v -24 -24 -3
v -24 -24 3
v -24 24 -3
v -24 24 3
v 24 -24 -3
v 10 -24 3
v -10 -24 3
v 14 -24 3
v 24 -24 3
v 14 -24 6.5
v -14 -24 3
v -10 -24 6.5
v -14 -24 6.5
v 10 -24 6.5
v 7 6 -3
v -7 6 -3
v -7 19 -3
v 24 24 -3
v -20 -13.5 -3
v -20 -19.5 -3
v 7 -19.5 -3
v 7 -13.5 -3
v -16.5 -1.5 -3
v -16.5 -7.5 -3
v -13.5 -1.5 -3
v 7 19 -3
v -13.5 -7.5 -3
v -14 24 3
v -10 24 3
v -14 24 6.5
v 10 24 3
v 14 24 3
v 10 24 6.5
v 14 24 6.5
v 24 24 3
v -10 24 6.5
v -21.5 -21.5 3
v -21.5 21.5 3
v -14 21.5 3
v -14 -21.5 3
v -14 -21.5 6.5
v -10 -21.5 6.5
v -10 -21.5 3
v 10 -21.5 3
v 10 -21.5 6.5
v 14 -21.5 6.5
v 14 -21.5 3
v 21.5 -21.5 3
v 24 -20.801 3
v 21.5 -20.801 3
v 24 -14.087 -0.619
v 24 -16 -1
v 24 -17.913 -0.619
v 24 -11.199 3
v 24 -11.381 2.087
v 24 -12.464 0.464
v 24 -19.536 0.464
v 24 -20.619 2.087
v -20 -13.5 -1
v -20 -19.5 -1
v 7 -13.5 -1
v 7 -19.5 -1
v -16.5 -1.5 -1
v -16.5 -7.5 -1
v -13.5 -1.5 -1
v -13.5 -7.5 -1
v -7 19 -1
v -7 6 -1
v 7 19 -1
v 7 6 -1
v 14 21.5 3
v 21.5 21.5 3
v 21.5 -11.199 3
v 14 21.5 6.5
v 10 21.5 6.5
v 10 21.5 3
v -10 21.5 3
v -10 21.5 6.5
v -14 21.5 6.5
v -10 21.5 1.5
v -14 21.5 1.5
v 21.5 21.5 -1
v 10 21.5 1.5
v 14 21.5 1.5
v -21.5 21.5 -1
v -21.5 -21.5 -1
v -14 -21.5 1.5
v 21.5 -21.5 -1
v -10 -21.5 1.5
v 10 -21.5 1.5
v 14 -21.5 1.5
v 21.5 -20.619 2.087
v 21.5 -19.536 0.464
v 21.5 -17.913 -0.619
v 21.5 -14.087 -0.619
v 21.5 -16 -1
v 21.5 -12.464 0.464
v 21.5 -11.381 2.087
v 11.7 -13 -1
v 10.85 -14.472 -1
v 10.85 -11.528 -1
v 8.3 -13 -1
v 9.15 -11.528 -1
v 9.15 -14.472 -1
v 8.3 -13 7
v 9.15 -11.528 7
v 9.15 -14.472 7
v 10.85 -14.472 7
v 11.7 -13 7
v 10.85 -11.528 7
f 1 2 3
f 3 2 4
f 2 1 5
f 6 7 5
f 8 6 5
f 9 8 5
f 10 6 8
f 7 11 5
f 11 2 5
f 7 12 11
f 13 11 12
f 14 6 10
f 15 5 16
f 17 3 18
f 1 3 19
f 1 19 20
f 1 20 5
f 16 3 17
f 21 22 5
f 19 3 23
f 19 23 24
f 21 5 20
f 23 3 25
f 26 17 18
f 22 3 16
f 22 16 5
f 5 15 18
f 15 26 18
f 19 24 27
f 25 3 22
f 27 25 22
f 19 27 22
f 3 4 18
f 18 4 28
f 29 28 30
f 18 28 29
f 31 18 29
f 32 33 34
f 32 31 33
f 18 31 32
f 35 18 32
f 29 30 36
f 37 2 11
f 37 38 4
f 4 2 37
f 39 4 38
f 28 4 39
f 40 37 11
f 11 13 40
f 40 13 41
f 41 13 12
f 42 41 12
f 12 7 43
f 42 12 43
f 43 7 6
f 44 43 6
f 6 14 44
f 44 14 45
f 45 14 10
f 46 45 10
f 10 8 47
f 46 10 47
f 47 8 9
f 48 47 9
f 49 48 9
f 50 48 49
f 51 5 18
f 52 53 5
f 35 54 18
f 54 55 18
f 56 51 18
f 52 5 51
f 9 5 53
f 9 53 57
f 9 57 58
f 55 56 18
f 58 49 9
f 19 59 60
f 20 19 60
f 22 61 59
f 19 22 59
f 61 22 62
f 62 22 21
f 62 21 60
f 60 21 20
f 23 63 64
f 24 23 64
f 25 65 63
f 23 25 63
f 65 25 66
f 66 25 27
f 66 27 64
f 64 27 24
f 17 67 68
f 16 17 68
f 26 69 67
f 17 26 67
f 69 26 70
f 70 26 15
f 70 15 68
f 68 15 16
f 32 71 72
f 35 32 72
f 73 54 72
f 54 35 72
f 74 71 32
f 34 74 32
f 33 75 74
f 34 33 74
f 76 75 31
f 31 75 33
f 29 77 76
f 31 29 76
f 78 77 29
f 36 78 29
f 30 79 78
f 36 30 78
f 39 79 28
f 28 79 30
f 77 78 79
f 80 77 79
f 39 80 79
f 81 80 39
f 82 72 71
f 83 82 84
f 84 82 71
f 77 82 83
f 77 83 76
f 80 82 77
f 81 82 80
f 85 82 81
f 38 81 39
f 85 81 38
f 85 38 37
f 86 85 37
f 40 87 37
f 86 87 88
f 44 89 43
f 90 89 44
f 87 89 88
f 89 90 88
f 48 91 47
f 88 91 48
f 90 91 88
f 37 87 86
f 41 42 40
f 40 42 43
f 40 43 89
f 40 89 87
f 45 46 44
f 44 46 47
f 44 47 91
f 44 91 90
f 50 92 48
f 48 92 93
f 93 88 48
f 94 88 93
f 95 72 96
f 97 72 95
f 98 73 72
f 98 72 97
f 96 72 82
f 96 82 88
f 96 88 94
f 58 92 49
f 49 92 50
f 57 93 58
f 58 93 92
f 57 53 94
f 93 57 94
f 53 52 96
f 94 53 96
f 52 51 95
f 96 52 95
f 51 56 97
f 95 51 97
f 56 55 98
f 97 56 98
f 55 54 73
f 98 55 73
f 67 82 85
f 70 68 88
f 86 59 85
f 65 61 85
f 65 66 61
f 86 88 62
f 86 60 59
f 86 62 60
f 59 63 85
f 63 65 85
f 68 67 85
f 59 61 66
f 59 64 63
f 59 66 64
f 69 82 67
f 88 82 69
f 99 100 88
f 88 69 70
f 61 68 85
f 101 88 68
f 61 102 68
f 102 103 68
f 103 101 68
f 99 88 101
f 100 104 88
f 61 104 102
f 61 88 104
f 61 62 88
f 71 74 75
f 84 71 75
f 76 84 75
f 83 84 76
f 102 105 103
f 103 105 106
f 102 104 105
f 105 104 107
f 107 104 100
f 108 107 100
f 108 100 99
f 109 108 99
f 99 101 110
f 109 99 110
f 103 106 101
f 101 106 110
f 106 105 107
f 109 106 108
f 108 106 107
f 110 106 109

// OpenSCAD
difference(){
	//Cubo de fuera
	cube(size=[48,48,6], center = true);
	//Cubo de dentro
	translate([0,0,2]) cube(size=[43,43,6], center = true);
	// Cubo Usb
	translate([0,12.5,-1]) cube(size=[14,13,6], center = true);
	//Cubo pines
	translate([-6.5,-16.5,-3]) cube(size=[27,6,6], center = true);
	//Cubo luz
	translate([-15,-4.5,0.5]) cube(size=[3,6,7.7], center = true);
	//Nariz
	translate([18,-16,4]) rotate([90,0,90]) cylinder(20,5,5);

}
translate([12,22.75,4]) cube(size=[4,2.5,5], center = true);
translate([-12,22.75,4]) cube(size=[4,2.5,5], center = true);
translate([12,-22.75,4]) cube(size=[4,2.5,5], center = true);
translate([-12,-22.75,4]) cube(size=[4,2.5,5], center = true);
translate([10,-13,-3]) rotate([0,0,0]) cylinder(10,1.7,1.7);
